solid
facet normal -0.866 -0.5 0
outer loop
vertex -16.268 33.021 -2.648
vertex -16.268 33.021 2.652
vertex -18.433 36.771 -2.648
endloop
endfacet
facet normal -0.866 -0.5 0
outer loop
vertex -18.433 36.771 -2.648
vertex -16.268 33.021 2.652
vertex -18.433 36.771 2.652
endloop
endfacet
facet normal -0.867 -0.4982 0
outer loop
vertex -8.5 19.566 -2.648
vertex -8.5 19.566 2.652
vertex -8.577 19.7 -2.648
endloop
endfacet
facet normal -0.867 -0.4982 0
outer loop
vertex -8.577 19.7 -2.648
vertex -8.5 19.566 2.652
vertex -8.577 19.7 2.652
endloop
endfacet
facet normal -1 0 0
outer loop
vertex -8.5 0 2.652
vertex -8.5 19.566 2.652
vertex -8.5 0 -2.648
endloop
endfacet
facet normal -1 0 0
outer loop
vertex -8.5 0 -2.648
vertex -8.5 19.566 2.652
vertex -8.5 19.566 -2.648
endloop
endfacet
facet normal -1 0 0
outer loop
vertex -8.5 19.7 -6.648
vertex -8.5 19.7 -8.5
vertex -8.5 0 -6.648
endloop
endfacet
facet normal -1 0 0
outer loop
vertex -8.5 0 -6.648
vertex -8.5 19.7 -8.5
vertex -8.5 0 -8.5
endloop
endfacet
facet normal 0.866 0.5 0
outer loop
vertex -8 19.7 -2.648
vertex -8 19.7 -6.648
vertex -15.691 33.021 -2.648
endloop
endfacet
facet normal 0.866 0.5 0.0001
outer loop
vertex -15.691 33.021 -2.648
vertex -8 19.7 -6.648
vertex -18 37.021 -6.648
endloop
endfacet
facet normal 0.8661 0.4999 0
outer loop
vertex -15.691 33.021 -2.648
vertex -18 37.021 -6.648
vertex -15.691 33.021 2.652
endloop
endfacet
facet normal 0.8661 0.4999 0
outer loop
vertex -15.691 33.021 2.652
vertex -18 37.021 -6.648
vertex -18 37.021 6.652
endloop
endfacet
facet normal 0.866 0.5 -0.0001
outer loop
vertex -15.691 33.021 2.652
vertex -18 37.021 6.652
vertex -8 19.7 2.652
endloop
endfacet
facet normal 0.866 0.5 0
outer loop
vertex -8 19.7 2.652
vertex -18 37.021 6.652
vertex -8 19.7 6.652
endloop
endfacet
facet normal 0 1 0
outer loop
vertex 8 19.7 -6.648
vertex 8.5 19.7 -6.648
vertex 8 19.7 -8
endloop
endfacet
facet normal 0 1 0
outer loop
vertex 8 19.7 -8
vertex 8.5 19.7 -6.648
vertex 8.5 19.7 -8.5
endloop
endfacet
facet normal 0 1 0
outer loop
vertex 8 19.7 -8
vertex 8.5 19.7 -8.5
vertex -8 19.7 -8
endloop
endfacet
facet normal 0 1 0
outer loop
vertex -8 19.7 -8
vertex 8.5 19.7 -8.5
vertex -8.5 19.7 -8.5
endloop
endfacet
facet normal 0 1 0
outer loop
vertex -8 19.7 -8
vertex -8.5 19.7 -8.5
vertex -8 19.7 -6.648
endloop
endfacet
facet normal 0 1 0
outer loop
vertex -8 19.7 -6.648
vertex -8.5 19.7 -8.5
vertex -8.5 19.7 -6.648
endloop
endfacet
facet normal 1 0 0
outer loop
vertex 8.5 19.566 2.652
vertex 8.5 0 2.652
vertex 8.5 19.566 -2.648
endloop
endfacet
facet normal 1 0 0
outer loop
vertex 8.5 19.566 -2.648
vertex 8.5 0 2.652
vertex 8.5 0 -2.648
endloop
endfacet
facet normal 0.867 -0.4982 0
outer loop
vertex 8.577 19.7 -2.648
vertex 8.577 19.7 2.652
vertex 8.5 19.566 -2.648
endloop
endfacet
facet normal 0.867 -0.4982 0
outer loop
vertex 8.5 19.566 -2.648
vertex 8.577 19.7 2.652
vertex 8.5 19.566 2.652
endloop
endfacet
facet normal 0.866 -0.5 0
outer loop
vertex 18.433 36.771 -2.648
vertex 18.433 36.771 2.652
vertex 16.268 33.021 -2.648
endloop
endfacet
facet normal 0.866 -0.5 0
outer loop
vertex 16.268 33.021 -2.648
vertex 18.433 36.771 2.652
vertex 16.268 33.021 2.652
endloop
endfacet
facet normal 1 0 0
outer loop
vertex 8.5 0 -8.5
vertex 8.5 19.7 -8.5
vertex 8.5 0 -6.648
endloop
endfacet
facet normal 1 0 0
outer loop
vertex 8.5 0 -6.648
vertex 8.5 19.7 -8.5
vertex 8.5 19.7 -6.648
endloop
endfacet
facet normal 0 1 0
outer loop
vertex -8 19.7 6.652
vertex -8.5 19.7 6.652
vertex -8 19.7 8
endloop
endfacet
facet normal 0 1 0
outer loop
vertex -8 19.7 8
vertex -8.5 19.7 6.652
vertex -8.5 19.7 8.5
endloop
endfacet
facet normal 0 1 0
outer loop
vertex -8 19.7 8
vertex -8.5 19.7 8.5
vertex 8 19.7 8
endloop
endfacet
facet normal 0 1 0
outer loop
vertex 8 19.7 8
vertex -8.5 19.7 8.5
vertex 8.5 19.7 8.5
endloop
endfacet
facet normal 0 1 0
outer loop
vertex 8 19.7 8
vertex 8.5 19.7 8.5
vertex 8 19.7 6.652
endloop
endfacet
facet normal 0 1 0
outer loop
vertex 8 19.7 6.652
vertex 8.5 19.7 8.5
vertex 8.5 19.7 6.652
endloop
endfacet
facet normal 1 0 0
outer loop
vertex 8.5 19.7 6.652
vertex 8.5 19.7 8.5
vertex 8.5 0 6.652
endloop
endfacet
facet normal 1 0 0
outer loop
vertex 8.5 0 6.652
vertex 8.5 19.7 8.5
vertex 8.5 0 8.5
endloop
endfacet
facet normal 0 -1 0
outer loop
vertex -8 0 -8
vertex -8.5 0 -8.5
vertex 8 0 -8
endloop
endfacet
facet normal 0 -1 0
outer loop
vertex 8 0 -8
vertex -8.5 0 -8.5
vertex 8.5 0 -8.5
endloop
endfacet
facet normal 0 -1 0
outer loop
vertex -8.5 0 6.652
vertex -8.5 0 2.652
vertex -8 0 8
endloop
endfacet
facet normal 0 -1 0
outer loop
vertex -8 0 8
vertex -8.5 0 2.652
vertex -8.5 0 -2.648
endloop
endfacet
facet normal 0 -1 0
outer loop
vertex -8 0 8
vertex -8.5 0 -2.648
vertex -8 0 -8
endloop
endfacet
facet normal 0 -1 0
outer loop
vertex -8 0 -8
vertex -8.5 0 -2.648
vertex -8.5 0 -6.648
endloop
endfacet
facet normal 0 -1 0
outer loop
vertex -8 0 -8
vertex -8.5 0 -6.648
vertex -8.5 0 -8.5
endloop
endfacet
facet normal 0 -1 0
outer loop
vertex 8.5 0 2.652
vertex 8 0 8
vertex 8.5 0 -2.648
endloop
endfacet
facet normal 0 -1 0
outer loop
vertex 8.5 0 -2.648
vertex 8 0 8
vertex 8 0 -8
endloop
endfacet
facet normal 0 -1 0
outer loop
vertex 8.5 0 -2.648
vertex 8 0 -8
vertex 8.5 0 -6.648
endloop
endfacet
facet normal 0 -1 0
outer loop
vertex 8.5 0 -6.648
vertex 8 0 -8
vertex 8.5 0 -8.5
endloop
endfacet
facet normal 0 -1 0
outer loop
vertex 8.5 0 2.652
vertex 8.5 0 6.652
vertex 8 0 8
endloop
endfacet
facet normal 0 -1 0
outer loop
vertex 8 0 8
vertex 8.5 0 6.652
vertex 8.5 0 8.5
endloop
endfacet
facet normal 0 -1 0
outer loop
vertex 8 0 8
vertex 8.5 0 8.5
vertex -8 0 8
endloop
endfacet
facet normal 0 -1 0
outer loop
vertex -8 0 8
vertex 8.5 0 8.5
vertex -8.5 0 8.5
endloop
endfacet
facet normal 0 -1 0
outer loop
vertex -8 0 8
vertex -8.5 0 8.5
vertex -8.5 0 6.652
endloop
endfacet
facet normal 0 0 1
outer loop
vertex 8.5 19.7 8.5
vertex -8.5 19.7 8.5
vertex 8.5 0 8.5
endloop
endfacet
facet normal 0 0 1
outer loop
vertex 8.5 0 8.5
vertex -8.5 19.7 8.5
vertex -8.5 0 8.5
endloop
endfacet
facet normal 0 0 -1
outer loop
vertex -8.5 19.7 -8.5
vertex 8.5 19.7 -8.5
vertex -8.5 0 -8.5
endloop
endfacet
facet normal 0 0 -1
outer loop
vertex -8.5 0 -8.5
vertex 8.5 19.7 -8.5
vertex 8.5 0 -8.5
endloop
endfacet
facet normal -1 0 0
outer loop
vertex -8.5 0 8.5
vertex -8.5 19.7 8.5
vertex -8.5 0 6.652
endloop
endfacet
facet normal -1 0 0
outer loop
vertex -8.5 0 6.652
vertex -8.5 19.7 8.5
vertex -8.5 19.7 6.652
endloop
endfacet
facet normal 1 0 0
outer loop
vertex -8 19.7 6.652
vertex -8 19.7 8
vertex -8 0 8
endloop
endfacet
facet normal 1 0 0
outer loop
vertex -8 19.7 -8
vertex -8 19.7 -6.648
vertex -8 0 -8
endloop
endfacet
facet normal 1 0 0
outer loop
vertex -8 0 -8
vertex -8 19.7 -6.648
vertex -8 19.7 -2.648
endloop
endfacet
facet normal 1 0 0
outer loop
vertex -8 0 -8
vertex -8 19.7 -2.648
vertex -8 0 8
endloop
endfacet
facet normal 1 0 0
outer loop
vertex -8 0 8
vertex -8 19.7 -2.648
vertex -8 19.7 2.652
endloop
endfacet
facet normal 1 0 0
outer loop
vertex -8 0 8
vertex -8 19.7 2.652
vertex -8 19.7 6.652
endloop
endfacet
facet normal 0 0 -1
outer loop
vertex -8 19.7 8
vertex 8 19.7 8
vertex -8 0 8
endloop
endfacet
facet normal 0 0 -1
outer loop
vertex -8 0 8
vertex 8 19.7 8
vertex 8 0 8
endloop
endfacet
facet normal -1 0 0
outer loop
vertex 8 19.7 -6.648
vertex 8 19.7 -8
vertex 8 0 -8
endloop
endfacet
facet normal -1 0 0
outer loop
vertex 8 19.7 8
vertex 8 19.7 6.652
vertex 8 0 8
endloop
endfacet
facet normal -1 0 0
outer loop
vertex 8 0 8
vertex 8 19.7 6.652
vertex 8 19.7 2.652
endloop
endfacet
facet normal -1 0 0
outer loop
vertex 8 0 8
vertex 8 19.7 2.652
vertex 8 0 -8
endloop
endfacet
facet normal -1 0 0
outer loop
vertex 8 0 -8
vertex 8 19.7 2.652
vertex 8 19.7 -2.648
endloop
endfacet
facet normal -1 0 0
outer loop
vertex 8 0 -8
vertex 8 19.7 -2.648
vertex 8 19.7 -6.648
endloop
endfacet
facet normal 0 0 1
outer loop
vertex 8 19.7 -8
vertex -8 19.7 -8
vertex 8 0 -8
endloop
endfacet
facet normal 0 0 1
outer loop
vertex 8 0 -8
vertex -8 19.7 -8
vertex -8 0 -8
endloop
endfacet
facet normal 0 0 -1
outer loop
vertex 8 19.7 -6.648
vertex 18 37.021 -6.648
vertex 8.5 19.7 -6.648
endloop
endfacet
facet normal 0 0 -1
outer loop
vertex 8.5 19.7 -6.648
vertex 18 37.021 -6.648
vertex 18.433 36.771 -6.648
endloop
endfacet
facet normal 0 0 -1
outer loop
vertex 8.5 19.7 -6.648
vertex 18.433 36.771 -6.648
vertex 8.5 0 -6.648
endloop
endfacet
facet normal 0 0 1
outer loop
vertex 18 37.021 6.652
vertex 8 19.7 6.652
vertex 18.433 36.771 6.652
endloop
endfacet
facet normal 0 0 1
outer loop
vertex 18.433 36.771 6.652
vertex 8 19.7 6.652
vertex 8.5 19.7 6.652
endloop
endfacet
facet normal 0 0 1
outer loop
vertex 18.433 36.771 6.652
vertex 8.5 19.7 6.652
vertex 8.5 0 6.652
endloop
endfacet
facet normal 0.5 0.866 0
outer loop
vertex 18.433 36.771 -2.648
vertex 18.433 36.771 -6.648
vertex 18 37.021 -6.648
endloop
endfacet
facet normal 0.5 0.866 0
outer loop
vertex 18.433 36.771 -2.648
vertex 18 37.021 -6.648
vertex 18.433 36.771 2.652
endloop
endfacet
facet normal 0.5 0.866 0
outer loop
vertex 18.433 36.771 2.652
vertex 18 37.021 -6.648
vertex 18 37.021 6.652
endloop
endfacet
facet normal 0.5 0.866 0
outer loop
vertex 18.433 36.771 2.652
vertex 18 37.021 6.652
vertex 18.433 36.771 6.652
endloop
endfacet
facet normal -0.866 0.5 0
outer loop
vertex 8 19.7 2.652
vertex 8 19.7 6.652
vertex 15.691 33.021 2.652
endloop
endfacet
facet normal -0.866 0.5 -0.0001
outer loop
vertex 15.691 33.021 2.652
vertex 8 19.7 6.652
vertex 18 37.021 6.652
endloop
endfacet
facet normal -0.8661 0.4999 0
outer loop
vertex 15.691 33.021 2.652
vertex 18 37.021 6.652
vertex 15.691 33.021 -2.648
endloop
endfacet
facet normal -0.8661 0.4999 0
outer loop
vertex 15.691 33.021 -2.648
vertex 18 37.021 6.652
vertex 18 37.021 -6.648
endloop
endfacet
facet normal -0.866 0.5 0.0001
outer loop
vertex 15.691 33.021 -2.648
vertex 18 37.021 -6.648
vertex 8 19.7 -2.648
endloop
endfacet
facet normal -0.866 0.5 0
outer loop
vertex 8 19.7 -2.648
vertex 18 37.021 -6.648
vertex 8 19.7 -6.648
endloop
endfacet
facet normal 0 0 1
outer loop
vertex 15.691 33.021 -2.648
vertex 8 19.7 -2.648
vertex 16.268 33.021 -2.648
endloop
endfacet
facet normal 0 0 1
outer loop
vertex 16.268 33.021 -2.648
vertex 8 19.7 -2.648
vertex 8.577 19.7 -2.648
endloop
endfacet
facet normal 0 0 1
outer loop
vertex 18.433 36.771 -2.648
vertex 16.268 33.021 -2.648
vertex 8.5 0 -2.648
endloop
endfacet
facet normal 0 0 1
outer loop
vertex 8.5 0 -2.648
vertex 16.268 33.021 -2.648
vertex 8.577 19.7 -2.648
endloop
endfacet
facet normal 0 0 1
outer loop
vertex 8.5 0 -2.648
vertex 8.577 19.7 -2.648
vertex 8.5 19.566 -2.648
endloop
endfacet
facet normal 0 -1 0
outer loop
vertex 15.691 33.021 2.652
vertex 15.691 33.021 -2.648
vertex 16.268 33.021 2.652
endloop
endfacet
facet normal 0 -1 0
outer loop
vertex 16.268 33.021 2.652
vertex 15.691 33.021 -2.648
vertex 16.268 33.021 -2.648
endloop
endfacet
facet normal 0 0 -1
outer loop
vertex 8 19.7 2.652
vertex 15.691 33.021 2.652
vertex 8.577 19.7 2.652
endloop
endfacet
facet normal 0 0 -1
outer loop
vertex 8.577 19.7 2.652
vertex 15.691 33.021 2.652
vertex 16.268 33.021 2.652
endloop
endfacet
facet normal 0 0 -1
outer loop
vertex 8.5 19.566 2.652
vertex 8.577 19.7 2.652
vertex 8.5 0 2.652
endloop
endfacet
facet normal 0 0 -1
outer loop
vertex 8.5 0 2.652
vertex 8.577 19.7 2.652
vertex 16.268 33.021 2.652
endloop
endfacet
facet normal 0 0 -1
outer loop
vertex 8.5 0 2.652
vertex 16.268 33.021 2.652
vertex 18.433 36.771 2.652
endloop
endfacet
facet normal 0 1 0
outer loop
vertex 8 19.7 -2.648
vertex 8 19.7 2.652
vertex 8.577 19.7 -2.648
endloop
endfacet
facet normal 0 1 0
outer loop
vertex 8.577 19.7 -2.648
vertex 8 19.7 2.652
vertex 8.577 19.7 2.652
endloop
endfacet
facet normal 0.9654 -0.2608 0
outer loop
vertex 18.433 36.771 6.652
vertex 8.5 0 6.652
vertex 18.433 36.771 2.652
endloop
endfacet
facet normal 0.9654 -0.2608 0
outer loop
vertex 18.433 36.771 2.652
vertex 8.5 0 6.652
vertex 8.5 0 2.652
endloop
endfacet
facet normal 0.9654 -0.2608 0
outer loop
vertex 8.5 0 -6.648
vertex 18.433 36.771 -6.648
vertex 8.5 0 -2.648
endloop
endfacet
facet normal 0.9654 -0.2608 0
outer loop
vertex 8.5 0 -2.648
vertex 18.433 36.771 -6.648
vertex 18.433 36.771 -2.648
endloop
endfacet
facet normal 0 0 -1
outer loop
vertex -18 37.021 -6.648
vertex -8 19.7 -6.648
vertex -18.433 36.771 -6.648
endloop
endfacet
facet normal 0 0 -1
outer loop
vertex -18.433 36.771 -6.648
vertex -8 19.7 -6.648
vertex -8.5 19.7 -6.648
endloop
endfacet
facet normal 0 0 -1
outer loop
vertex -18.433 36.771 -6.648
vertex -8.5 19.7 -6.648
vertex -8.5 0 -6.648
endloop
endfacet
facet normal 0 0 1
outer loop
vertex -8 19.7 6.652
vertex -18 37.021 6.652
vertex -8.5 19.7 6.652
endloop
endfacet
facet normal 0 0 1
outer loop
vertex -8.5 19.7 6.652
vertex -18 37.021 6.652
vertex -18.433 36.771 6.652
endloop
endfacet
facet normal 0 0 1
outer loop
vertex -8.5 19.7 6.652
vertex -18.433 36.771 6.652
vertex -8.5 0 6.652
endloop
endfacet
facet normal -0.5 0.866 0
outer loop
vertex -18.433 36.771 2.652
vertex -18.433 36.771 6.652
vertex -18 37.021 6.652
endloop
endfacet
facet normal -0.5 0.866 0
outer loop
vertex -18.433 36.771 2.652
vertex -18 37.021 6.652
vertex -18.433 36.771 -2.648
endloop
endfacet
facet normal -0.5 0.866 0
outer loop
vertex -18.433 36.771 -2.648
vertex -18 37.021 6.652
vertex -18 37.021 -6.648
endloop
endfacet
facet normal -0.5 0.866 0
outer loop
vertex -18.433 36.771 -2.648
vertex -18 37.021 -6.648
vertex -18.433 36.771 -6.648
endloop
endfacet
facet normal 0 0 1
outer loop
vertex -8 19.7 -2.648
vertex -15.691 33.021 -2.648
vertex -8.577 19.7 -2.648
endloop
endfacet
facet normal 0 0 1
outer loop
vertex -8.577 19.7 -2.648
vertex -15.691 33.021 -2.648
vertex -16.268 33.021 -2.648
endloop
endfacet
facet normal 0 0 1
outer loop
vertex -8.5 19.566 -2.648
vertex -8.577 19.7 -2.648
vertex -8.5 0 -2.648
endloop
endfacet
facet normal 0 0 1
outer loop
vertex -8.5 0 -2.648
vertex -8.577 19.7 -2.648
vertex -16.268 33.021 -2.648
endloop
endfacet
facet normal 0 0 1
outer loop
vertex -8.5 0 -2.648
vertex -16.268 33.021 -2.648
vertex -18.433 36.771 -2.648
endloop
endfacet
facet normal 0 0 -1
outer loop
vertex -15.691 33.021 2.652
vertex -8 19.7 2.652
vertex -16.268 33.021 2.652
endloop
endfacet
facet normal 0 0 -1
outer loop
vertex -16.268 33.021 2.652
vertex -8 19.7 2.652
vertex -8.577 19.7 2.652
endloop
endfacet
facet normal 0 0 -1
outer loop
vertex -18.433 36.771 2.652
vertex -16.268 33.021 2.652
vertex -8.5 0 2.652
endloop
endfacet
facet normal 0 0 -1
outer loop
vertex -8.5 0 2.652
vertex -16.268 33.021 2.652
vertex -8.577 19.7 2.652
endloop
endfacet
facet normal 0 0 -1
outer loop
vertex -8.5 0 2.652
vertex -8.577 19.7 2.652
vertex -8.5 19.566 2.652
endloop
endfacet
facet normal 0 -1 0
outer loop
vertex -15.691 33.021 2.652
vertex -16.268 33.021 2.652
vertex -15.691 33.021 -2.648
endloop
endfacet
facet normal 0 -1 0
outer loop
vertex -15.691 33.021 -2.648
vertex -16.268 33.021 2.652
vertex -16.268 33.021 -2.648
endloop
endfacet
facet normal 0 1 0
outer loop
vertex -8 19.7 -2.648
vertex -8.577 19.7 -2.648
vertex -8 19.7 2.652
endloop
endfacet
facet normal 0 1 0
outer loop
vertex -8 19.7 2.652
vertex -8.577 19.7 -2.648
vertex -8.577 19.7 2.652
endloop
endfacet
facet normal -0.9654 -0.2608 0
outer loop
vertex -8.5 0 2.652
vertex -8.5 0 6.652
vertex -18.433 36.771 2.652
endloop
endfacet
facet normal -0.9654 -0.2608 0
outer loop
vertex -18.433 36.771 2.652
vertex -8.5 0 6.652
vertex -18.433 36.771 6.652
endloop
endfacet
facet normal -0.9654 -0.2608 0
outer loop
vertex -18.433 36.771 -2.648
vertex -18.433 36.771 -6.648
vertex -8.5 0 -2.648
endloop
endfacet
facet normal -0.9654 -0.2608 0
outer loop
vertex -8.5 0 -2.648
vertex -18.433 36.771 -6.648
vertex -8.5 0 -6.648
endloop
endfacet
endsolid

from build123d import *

# Parameters (mm, degrees)
SKIZZE1_W                        = 17
SKIZZE1_H                        = 17
SKIZZE1_W_2                      = 16
SKIZZE1_H_2                      = 16
AUFSATZ_LINEAR_AUSTRAGEN1_DEPTH  = 19.7
SKIZZE10_W                       = 13.3
SKIZZE10_H                       = 20
AUFSATZ_LINEAR_AUSTRAGEN5_DEPTH  = 0.5
SKIZZE11_W                       = 5.3
SKIZZE11_H                       = 13.320508076
SCHNITT_LINEAR_AUSTRAGEN14_DEPTH = 11.433012702
AUFSATZ_LINEAR_AUSTRAGEN6_DEPTH  = 4
AUFSATZ_LINEAR_AUSTRAGEN7_DEPTH  = 4


with BuildPart() as part:
    # Skizze1 → Aufsatz-Linear austragen1 (new body)
    with BuildSketch(Plane(origin=(0, 0, 0), x_dir=(1, 0, 0), z_dir=(0, 1, 0))):
        Rectangle(SKIZZE1_W, SKIZZE1_H)
        Rectangle(SKIZZE1_W_2, SKIZZE1_H_2, mode=Mode.SUBTRACT)
    extrude(amount=AUFSATZ_LINEAR_AUSTRAGEN1_DEPTH)

    # Skizze10 → Aufsatz-Linear austragen5 (add)
    with BuildSketch(Plane(origin=(-2.530350227, 1.460898385, 0), x_dir=(0, 0, -1), z_dir=(0.866025404, -0.5, 0))):
        with Locations((-0.00194728, 31.060700455)):
            Rectangle(SKIZZE10_W, SKIZZE10_H)
    aufsatz_linear_austragen5 = extrude(amount=AUFSATZ_LINEAR_AUSTRAGEN5_DEPTH)

    # Skizze11 → Schnitt-Linear austragen14 (cut, through all)
    with BuildSketch(Plane.ZY.offset(-8)):
        with Locations((0.00194728, 26.360254038)):
            Rectangle(SKIZZE11_W, SKIZZE11_H)
    schnitt_linear_austragen14 = extrude(amount=-SCHNITT_LINEAR_AUSTRAGEN14_DEPTH, mode=Mode.SUBTRACT)

    # Skizze12 → Aufsatz-Linear austragen6 (add)
    with BuildSketch(Plane.XY.offset(6.65194728)):
        Polygon((18.433012702, 36.770508076), (8.5, 0), (8.5, 19.7), align=None)
    aufsatz_linear_austragen6 = extrude(amount=-AUFSATZ_LINEAR_AUSTRAGEN6_DEPTH)

    # Skizze13 → Aufsatz-Linear austragen7 (add)
    with BuildSketch(Plane(origin=(0, 0, -6.64805272), x_dir=(-1, 0, 0), z_dir=(0, 0, -1))):
        Polygon((-18.433012702, 36.770508076), (-8.5, 19.7), (-8.5, 0), align=None)
    aufsatz_linear_austragen7 = extrude(amount=-AUFSATZ_LINEAR_AUSTRAGEN7_DEPTH)

    # Spiegeln6: Aufsatz-Linear austragen5, Schnitt-Linear austragen14, Aufsatz-Linear austragen6, Aufsatz-Linear austragen7 across plane
    add(aufsatz_linear_austragen5.mirror(Plane(origin=(0, 0, 0), x_dir=(0, 0, 1), z_dir=(1, 0, 0))))
    add(schnitt_linear_austragen14.mirror(Plane(origin=(0, 0, 0), x_dir=(0, 0, 1), z_dir=(1, 0, 0))), mode=Mode.SUBTRACT)
    add(aufsatz_linear_austragen6.mirror(Plane(origin=(0, 0, 0), x_dir=(0, 0, 1), z_dir=(1, 0, 0))))
    add(aufsatz_linear_austragen7.mirror(Plane(origin=(0, 0, 0), x_dir=(0, 0, 1), z_dir=(1, 0, 0))))


solid = part.part
